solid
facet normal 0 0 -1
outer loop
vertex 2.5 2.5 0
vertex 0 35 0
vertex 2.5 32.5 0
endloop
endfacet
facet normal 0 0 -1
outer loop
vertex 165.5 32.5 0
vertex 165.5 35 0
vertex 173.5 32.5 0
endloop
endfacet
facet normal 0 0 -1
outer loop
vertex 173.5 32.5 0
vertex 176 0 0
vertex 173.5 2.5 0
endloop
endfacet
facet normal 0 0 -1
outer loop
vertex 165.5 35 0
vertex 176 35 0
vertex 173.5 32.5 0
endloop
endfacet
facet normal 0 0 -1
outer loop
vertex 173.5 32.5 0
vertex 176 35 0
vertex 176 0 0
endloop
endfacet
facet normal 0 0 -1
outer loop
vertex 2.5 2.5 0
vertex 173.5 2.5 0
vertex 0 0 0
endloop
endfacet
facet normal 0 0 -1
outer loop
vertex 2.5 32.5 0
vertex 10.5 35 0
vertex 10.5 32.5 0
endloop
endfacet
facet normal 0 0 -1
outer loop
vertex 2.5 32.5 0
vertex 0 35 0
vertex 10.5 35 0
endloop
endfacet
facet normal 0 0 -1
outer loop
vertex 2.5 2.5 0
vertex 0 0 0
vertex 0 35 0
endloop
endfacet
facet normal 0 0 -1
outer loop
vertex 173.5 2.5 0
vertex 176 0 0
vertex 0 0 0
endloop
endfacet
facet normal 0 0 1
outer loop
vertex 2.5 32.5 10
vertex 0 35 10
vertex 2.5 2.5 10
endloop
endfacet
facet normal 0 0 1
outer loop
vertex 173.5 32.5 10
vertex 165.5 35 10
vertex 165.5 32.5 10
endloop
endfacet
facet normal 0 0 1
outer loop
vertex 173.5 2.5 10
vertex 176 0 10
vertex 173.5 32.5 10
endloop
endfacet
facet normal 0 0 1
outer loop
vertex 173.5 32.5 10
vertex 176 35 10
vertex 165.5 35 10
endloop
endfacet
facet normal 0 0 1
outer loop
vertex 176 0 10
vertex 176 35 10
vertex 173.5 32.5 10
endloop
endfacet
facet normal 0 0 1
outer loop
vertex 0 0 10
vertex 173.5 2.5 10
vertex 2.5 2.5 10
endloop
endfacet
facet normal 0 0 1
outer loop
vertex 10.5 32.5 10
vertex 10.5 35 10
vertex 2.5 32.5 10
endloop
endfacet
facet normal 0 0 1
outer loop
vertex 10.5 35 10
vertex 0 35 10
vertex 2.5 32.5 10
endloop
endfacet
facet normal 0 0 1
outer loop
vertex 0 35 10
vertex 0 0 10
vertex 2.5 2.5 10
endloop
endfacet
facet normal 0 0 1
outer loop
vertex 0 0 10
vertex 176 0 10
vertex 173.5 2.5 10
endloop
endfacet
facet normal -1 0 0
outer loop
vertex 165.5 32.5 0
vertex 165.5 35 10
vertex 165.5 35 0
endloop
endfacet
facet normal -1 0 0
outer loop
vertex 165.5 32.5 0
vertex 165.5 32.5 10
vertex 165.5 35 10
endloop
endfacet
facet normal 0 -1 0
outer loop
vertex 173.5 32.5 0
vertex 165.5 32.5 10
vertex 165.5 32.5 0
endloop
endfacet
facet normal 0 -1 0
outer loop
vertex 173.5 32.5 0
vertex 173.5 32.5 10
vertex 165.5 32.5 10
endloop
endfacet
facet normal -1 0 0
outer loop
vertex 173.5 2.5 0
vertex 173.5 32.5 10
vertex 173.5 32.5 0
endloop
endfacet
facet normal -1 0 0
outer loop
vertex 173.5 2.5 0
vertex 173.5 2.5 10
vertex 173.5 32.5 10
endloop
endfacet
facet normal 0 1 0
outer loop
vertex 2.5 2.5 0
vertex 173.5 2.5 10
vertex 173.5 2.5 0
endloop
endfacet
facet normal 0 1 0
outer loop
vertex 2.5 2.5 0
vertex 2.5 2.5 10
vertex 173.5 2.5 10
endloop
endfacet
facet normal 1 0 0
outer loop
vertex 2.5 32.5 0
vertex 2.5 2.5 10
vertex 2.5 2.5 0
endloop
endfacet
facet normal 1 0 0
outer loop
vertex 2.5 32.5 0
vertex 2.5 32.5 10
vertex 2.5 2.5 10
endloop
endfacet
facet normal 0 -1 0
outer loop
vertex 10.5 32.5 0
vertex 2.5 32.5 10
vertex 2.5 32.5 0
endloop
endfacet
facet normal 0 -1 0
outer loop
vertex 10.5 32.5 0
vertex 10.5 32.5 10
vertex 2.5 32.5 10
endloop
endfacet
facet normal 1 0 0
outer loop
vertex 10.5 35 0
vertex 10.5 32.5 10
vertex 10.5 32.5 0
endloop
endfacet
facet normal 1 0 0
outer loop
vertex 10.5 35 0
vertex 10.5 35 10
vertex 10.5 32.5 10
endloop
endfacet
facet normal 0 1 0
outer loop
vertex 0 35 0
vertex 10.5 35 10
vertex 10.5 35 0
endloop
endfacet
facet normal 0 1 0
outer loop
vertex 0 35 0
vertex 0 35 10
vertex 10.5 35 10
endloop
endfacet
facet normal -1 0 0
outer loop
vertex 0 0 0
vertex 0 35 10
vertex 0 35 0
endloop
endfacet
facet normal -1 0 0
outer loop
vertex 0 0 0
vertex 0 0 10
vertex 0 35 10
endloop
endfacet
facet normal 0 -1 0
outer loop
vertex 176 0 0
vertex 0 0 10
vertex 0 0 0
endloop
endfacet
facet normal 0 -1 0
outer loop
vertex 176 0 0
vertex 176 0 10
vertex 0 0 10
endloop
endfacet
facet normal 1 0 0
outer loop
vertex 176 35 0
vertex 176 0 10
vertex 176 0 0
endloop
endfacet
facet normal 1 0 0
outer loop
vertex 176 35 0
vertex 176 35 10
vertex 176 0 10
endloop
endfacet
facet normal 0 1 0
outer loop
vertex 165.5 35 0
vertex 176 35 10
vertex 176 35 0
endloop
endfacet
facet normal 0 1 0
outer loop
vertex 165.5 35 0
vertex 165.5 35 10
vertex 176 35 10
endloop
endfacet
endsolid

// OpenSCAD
// Beam clip for holding lightweight string lights
// PRINT: Flat on bed, no supports

/* [Beam Dimensions] */
inner_width = 171;   // gap between sides (beam width)
side_height = 30;    // height of vertical walls
clip_length = 8;     // inward lip at top

/* [Clip Settings] */
depth = 10;          // extrusion depth
wall = 2.5;          // wall thickness

module beam_clip() {
    linear_extrude(depth) {
        // Bottom
        square([inner_width + 2 * wall, wall]);

        // Left side
        translate([0, 0])
            square([wall, wall + side_height + wall]);

        // Right side
        translate([inner_width + wall, 0])
            square([wall, wall + side_height + wall]);

        // Left clip lip
        translate([0, side_height + wall])
            square([clip_length + wall, wall]);

        // Right clip lip
        translate([inner_width + wall - clip_length, side_height + wall])
            square([clip_length + wall, wall]);
    }
}

beam_clip();
